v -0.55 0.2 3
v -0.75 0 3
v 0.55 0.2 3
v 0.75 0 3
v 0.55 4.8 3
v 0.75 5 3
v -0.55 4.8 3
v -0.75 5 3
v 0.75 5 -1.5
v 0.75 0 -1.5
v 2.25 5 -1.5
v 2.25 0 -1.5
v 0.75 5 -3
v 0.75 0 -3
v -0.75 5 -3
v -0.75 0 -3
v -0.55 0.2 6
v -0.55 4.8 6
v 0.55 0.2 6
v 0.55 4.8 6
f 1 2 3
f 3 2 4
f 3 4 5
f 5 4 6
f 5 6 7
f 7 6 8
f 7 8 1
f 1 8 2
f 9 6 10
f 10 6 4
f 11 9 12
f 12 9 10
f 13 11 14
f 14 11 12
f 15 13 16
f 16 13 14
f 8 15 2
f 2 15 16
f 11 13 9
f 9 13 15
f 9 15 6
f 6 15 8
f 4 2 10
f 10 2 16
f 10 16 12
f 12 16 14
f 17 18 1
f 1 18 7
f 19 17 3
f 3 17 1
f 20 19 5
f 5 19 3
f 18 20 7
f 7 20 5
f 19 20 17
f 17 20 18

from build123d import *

# Parameters (mm, degrees)
BOSS_EXTRUDE1_DEPTH = 5
SKETCH2_W           = 1.1
SKETCH2_H           = 4.6
BOSS_EXTRUDE2_DEPTH = 3


with BuildPart() as part:
    # Sketch1 → Boss-Extrude1 (new body)
    with BuildSketch(Plane(origin=(0, 0, 0), x_dir=(1, 0, 0), z_dir=(0, 1, 0))):
        Polygon((0.75, 1.5), (2.25, 1.5), (0.75, 3), (-0.75, 3), (-0.75, -3), (-0.7, -3), (0.7, -3), (0.75, -3), align=None)
    extrude(amount=BOSS_EXTRUDE1_DEPTH)

    # Sketch2 → Boss-Extrude2 (add)
    with BuildSketch(Plane.XY.offset(3)):
        with Locations((0, 2.5)):
            Rectangle(SKETCH2_W, SKETCH2_H)
    extrude(amount=BOSS_EXTRUDE2_DEPTH)


solid = part.part
